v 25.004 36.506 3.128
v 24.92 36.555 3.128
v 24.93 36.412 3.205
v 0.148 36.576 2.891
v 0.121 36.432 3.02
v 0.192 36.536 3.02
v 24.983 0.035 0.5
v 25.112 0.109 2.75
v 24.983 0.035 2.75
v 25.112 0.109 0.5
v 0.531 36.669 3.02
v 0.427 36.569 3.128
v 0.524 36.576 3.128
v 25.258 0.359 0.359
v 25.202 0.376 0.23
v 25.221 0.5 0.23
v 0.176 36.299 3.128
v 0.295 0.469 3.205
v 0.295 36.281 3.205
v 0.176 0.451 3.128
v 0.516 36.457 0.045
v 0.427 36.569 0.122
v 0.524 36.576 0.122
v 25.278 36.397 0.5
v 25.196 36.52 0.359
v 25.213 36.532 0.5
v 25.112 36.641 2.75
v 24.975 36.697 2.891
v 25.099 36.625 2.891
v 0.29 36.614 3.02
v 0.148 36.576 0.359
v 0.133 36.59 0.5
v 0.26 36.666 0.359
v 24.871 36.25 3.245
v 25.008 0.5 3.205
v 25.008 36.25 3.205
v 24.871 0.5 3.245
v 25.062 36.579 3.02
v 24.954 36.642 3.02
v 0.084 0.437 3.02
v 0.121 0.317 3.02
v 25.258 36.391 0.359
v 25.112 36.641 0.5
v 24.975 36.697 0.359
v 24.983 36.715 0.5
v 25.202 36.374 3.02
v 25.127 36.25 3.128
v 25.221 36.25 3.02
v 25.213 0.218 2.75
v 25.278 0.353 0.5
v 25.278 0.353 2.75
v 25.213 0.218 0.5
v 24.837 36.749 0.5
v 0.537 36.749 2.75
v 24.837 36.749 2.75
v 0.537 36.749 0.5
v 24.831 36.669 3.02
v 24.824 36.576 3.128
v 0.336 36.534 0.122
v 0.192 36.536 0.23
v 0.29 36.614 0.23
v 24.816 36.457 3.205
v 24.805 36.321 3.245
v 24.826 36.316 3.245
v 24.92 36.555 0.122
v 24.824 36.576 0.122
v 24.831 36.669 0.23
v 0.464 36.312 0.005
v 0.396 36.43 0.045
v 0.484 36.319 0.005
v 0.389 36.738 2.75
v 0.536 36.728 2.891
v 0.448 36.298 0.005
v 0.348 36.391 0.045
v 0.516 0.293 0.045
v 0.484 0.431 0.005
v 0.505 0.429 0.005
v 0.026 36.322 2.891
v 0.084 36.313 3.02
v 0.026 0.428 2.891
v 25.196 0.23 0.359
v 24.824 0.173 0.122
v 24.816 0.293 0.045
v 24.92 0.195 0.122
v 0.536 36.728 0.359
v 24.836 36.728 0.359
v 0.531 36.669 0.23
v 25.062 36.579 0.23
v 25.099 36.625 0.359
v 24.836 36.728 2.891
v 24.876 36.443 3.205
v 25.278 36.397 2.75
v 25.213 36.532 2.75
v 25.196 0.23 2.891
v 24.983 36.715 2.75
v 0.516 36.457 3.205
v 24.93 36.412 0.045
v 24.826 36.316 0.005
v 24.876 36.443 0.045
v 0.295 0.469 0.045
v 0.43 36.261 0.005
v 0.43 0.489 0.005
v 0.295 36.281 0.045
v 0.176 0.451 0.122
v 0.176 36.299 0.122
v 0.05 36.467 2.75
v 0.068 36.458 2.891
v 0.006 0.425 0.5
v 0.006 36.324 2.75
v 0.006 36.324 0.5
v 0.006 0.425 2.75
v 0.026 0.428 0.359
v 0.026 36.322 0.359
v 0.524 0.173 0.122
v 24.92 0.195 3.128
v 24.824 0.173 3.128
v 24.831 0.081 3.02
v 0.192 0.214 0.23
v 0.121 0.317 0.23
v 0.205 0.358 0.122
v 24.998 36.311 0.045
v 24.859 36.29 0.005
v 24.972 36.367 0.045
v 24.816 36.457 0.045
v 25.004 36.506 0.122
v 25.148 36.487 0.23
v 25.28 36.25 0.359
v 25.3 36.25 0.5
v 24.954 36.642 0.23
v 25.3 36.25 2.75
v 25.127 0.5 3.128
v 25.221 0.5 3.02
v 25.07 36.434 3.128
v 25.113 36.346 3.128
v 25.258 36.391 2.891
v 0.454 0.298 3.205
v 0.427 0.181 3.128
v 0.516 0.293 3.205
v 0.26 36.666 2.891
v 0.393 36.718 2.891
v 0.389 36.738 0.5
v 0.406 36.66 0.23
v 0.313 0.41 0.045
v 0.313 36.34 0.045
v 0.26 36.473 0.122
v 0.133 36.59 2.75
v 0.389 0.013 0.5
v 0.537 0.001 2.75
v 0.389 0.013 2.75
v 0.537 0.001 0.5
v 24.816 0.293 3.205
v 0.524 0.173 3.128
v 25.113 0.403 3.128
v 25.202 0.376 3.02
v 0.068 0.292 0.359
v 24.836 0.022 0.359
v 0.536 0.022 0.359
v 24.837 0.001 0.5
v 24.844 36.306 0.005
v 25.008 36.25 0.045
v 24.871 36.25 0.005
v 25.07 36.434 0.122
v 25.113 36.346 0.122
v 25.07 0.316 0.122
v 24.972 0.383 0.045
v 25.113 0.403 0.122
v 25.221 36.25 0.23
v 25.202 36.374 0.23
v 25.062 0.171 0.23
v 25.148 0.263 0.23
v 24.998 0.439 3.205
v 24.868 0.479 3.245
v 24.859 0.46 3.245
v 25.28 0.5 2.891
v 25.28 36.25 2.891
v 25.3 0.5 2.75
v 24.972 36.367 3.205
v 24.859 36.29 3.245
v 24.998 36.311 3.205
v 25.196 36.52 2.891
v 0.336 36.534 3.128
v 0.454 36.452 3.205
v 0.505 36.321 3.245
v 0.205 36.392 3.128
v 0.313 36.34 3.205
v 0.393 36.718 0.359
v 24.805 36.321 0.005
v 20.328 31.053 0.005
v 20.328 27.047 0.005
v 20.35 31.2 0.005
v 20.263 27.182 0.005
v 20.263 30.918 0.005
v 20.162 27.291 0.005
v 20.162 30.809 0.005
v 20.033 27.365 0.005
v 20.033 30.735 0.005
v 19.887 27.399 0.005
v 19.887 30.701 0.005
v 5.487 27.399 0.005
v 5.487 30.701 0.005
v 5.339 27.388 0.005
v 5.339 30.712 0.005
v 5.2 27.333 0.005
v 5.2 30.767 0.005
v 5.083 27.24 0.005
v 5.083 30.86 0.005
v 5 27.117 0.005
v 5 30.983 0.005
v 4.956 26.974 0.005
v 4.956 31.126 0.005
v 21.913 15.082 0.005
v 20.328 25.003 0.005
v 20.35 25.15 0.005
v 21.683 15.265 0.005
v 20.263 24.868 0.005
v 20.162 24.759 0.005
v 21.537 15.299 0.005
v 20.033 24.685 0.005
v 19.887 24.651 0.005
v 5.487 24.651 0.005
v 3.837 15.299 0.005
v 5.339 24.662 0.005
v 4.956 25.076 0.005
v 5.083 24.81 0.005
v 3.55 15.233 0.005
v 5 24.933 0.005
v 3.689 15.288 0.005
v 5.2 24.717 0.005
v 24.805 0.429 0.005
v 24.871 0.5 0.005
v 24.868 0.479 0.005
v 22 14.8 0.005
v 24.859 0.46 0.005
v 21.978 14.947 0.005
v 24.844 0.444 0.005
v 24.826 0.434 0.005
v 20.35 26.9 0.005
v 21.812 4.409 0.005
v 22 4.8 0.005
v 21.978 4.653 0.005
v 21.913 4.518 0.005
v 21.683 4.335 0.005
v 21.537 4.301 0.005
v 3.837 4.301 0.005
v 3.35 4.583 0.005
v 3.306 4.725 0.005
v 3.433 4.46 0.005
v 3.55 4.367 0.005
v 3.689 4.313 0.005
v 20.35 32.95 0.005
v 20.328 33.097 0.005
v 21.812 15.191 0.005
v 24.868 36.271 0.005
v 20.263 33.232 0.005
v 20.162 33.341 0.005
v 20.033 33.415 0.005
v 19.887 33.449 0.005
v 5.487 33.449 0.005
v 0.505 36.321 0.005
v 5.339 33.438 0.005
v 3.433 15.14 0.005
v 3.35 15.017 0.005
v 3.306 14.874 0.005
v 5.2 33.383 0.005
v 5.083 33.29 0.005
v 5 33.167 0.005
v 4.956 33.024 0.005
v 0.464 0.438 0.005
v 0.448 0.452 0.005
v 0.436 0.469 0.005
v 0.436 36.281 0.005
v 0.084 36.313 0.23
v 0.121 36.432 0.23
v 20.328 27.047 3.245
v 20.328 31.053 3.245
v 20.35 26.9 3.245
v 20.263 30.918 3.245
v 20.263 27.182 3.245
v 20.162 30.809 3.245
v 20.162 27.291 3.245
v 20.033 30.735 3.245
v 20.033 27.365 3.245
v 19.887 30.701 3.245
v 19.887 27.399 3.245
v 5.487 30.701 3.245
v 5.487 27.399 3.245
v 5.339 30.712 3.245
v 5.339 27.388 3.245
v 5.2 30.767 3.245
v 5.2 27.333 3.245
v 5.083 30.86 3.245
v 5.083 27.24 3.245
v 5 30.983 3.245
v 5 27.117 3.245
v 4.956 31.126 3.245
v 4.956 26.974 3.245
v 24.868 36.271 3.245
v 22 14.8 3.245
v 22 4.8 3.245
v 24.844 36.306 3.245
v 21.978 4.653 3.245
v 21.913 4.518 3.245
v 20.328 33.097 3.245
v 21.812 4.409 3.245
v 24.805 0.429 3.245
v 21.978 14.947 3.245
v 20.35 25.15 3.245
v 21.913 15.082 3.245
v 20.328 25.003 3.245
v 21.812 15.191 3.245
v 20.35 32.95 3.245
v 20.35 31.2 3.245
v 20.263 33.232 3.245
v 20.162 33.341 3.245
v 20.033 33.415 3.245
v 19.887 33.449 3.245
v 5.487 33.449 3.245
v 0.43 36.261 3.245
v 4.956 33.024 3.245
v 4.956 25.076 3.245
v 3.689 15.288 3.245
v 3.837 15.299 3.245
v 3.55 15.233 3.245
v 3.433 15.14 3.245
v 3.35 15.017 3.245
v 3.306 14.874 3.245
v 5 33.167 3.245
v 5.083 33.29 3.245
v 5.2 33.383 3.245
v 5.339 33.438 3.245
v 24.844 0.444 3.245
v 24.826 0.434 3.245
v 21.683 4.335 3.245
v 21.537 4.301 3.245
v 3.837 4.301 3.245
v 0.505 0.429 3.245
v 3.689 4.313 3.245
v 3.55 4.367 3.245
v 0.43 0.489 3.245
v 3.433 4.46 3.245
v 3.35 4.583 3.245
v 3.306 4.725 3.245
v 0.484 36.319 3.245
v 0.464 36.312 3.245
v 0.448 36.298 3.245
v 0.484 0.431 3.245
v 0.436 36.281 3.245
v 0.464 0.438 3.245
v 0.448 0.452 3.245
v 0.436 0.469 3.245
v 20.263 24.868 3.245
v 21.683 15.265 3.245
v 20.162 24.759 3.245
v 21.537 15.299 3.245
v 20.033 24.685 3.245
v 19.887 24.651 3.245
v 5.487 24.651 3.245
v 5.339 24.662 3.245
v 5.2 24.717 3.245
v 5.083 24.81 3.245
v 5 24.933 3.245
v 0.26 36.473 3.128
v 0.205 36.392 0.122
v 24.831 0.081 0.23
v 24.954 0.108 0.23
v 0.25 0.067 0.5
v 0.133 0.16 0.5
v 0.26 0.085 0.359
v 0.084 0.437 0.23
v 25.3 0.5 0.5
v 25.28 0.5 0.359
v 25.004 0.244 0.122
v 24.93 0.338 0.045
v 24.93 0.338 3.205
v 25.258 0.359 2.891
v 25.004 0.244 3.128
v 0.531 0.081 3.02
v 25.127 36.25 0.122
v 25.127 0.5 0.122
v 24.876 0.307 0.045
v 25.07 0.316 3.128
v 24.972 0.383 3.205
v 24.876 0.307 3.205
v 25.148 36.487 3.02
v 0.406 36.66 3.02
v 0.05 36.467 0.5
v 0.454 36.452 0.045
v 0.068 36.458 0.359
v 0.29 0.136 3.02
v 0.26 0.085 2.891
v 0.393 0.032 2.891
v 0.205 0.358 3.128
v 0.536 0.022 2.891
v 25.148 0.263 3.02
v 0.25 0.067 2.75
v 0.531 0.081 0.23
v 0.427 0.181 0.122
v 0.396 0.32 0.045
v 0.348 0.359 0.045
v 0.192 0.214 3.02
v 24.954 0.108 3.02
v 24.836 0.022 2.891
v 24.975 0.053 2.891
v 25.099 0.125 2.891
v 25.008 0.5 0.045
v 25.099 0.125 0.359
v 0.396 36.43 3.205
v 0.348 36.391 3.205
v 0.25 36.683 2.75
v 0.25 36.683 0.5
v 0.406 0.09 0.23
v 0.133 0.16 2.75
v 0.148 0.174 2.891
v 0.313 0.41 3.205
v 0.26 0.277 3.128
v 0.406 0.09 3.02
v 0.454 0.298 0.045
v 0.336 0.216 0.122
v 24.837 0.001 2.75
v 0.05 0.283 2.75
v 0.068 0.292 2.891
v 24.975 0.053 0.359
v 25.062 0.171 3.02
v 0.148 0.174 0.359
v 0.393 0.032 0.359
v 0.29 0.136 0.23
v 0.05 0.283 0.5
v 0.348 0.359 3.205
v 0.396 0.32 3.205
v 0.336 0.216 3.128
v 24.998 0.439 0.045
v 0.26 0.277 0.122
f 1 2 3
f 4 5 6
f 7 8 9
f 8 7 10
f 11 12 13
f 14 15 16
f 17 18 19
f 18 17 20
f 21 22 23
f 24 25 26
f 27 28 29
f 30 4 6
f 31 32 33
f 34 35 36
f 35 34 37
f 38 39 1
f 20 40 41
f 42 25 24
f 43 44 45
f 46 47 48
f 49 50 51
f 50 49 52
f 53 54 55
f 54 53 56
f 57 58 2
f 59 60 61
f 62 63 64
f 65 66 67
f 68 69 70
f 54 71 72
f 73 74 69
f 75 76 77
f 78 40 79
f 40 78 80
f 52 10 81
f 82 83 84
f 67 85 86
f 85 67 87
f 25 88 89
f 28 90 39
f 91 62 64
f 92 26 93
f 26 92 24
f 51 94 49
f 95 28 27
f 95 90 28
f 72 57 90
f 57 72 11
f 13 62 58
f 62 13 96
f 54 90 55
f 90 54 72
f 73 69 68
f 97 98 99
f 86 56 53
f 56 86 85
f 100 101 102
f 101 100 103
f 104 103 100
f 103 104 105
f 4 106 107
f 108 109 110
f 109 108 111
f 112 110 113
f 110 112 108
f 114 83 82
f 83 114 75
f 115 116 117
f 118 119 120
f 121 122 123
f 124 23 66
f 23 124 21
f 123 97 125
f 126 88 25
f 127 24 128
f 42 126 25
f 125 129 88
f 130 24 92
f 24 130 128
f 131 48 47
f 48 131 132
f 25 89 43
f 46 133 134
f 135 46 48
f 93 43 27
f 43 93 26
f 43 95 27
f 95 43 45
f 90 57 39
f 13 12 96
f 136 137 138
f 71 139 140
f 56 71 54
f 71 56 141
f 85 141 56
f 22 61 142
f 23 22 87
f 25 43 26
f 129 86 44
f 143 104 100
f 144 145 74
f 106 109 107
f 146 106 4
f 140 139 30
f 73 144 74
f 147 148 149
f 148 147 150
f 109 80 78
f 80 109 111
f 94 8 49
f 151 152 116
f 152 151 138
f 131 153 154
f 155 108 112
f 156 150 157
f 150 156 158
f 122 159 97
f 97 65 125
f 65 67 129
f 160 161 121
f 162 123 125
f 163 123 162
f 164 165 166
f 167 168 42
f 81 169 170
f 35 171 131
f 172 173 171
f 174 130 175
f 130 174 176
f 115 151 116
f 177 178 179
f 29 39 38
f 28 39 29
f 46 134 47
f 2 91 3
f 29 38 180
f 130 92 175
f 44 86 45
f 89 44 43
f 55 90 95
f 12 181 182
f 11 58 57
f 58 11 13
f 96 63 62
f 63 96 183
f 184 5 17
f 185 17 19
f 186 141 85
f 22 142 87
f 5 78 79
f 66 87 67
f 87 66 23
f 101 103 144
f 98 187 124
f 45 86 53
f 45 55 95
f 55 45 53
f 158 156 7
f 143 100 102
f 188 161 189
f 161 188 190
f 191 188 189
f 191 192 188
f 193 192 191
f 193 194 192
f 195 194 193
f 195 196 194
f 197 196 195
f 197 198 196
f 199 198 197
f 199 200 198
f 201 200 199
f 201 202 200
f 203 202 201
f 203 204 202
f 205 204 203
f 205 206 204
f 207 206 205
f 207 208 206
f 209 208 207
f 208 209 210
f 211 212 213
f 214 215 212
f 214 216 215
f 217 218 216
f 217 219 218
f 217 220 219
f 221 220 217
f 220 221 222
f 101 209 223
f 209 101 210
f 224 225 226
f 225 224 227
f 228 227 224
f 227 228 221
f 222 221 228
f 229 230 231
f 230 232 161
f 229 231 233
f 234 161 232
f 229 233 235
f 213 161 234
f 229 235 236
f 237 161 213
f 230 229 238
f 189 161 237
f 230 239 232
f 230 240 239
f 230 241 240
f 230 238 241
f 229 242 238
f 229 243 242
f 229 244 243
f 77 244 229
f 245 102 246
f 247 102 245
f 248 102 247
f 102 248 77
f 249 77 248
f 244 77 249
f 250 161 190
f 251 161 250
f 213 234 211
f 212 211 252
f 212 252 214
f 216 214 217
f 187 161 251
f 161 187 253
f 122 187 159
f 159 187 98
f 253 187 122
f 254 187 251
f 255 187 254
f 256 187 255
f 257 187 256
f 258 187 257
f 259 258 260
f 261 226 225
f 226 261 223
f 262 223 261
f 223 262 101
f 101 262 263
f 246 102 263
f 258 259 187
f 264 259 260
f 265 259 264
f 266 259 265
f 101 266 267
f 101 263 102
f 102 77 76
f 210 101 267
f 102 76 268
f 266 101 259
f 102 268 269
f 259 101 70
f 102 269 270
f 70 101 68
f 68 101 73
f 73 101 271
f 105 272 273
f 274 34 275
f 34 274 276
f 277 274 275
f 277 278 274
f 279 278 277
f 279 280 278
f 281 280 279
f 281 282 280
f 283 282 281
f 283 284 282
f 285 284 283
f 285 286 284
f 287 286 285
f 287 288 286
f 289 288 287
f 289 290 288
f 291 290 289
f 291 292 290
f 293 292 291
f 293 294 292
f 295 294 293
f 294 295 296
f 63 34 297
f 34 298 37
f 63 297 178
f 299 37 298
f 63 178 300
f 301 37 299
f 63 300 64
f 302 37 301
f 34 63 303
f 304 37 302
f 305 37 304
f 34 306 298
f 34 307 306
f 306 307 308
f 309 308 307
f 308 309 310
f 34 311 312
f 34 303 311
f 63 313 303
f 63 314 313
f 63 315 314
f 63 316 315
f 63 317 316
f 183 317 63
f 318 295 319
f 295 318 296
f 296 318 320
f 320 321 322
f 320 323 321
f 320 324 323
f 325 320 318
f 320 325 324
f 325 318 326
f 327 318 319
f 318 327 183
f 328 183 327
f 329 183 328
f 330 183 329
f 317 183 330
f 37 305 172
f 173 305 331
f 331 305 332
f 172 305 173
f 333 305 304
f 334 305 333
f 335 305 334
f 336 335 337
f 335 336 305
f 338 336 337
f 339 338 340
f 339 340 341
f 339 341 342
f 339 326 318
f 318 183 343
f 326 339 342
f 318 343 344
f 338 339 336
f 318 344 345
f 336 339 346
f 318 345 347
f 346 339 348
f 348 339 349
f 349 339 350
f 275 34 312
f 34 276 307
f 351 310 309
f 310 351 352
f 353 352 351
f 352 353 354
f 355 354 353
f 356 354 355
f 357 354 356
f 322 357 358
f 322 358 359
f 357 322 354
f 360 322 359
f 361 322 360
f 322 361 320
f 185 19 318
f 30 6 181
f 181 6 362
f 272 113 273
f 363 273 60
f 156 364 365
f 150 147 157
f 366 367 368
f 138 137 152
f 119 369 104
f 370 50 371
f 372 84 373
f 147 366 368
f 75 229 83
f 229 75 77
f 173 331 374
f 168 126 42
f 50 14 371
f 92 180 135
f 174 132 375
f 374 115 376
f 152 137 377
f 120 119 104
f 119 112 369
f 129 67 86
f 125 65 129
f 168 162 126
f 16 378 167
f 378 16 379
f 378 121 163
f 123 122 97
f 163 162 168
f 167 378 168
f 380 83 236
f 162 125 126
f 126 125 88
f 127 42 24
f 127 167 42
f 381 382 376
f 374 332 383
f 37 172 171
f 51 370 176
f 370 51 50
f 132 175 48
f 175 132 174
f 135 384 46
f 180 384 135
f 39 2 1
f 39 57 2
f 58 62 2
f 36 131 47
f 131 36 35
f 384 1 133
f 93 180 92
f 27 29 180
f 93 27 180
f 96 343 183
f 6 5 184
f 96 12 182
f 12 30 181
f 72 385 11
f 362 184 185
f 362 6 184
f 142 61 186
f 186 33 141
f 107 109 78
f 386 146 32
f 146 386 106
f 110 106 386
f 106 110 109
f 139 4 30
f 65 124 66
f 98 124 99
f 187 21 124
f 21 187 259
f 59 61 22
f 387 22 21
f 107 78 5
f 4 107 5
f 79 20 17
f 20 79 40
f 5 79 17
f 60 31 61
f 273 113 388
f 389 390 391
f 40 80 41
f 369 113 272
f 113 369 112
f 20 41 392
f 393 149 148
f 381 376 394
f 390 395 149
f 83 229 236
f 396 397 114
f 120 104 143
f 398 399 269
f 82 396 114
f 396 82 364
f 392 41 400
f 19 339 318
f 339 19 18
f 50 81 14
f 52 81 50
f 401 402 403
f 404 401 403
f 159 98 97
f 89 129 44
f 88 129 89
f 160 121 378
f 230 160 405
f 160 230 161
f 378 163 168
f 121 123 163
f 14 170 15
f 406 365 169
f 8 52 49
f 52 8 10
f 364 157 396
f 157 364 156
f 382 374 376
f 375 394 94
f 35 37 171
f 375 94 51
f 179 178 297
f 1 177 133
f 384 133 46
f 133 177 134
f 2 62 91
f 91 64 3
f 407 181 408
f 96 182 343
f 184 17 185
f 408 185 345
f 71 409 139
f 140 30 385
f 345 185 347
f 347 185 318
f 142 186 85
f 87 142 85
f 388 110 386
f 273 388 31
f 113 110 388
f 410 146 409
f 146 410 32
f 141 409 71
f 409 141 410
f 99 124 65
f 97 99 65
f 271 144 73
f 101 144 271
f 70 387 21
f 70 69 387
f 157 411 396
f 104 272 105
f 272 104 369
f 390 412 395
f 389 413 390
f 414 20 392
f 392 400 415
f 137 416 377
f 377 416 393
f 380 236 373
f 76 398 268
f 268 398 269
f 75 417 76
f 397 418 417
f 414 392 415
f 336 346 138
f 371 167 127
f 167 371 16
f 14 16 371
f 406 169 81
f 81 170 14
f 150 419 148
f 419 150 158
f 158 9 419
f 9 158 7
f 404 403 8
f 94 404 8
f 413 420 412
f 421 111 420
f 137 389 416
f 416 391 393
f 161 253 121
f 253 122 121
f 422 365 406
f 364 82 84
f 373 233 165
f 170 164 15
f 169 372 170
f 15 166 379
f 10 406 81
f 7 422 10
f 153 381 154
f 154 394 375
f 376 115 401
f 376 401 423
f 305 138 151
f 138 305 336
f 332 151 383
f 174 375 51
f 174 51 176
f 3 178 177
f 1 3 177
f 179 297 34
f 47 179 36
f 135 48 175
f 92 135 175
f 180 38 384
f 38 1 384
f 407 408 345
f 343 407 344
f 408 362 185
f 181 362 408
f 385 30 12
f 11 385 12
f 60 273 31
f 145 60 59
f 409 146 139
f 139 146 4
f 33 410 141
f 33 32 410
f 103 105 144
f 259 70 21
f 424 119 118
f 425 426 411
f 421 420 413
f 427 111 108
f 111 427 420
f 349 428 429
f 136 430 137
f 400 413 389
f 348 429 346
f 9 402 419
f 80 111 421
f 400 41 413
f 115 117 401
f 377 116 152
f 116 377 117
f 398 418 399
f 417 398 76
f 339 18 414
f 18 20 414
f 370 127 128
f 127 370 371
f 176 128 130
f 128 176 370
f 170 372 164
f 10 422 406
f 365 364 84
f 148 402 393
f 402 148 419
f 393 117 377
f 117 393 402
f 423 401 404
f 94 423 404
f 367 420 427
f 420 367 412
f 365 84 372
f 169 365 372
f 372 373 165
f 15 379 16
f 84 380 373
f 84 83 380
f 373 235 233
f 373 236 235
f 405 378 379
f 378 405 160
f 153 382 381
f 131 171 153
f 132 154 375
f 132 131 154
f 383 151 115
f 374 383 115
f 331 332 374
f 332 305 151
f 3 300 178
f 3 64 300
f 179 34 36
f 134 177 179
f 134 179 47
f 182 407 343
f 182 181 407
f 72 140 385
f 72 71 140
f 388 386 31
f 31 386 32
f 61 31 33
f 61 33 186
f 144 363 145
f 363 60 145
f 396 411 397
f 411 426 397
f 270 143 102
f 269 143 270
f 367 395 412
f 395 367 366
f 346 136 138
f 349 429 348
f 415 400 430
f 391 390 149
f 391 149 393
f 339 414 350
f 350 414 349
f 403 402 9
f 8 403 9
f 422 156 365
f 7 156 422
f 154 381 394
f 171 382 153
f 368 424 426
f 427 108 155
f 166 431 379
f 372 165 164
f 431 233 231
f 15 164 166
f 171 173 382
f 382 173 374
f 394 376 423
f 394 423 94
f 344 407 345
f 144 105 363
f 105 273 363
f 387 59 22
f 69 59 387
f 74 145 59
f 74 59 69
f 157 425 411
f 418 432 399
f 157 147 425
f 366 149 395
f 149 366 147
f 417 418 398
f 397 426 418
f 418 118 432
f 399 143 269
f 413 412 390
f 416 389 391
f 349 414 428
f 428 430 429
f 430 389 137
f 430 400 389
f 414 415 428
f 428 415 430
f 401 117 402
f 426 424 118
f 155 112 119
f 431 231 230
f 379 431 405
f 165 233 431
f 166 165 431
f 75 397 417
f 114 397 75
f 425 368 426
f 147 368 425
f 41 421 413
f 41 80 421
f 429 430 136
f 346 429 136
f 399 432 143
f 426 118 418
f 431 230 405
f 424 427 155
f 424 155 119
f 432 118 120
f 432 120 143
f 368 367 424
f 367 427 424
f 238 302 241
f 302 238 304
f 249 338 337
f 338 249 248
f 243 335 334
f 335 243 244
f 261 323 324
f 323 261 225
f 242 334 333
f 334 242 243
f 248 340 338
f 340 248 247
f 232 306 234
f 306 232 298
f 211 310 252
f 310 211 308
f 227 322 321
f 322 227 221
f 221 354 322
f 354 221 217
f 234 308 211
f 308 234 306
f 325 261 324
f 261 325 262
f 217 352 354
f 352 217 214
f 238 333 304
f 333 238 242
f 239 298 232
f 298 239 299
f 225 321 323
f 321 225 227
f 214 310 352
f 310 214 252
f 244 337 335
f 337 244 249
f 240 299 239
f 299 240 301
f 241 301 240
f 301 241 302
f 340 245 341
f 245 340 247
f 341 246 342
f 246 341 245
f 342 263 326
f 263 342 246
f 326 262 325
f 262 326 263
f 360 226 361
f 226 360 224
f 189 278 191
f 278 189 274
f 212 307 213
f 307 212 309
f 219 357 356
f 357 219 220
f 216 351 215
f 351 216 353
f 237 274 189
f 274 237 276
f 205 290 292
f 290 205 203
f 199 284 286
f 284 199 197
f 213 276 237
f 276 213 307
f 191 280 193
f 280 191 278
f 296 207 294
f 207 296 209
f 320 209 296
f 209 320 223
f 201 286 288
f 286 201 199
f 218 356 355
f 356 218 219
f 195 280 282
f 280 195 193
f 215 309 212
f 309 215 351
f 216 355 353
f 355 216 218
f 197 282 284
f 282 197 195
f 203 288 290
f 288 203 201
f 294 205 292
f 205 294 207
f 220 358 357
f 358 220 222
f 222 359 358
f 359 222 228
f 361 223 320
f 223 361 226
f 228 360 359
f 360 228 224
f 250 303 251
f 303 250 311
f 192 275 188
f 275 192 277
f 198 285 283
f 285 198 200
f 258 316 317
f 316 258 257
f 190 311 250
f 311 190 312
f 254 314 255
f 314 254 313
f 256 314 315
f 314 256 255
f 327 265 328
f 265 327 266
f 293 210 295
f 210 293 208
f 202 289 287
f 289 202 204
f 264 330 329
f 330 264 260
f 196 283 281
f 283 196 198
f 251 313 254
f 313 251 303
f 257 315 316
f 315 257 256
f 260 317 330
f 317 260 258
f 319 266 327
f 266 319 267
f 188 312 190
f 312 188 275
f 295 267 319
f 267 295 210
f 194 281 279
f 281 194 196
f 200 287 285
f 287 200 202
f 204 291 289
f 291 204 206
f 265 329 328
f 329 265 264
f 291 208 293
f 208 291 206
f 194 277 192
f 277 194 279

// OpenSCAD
mount_height = 18.7;
mount_width = 11;

strap_width = 2.75;
strap_height = 15.4;

margin = 3.3;

height = mount_height+(2*margin);
width = 1+(margin*5)+(strap_width*3)+mount_width;
depth = 3.25;


difference() {
    roundedcube(size=[height,width,depth], radius=0.5);
    translate([(height-mount_height)/2,1+margin,-1]) roundedcube([mount_height,mount_width,depth+2]);
    translate([(height-strap_height)/2, 1+(margin*3)+mount_width+strap_width, -1]) roundedcube([strap_height,strap_width,depth+2]);
    translate([(height-strap_height)/2, 1+(margin*4)+mount_width+(strap_width*2), -1]) roundedcube([strap_height,strap_width,depth+2]);
}

// Rounded Corners
// More information: https://danielupshaw.com/openscad-rounded-corners/
// Set to 0.01 for higher definition curves (renders slower)
$fs = 0.15;

module roundedcube(size = [1, 1, 1], center = false, radius = 0.5, apply_to = "all") {
	// If single value, convert to [x, y, z] vector
	size = (size[0] == undef) ? [size, size, size] : size;

	translate_min = radius;
	translate_xmax = size[0] - radius;
	translate_ymax = size[1] - radius;
	translate_zmax = size[2] - radius;

	diameter = radius * 2;

	obj_translate = (center == false) ?
		[0, 0, 0] : [
			-(size[0] / 2),
			-(size[1] / 2),
			-(size[2] / 2)
		];

	translate(v = obj_translate) {
		hull() {
			for (translate_x = [translate_min, translate_xmax]) {
				x_at = (translate_x == translate_min) ? "min" : "max";
				for (translate_y = [translate_min, translate_ymax]) {
					y_at = (translate_y == translate_min) ? "min" : "max";
					for (translate_z = [translate_min, translate_zmax]) {
						z_at = (translate_z == translate_min) ? "min" : "max";

						translate(v = [translate_x, translate_y, translate_z])
						if (
							(apply_to == "all") ||
							(apply_to == "xmin" && x_at == "min") || (apply_to == "xmax" && x_at == "max") ||
							(apply_to == "ymin" && y_at == "min") || (apply_to == "ymax" && y_at == "max") ||
							(apply_to == "zmin" && z_at == "min") || (apply_to == "zmax" && z_at == "max")
						) {
							sphere(r = radius);
						} else {
							rotate = 
								(apply_to == "xmin" || apply_to == "xmax" || apply_to == "x") ? [0, 90, 0] : (
								(apply_to == "ymin" || apply_to == "ymax" || apply_to == "y") ? [90, 90, 0] :
								[0, 0, 0]
							);
							rotate(a = rotate)
							cylinder(h = diameter, r = radius, center = true);
						}
					}
				}
			}
		}
	}
}
